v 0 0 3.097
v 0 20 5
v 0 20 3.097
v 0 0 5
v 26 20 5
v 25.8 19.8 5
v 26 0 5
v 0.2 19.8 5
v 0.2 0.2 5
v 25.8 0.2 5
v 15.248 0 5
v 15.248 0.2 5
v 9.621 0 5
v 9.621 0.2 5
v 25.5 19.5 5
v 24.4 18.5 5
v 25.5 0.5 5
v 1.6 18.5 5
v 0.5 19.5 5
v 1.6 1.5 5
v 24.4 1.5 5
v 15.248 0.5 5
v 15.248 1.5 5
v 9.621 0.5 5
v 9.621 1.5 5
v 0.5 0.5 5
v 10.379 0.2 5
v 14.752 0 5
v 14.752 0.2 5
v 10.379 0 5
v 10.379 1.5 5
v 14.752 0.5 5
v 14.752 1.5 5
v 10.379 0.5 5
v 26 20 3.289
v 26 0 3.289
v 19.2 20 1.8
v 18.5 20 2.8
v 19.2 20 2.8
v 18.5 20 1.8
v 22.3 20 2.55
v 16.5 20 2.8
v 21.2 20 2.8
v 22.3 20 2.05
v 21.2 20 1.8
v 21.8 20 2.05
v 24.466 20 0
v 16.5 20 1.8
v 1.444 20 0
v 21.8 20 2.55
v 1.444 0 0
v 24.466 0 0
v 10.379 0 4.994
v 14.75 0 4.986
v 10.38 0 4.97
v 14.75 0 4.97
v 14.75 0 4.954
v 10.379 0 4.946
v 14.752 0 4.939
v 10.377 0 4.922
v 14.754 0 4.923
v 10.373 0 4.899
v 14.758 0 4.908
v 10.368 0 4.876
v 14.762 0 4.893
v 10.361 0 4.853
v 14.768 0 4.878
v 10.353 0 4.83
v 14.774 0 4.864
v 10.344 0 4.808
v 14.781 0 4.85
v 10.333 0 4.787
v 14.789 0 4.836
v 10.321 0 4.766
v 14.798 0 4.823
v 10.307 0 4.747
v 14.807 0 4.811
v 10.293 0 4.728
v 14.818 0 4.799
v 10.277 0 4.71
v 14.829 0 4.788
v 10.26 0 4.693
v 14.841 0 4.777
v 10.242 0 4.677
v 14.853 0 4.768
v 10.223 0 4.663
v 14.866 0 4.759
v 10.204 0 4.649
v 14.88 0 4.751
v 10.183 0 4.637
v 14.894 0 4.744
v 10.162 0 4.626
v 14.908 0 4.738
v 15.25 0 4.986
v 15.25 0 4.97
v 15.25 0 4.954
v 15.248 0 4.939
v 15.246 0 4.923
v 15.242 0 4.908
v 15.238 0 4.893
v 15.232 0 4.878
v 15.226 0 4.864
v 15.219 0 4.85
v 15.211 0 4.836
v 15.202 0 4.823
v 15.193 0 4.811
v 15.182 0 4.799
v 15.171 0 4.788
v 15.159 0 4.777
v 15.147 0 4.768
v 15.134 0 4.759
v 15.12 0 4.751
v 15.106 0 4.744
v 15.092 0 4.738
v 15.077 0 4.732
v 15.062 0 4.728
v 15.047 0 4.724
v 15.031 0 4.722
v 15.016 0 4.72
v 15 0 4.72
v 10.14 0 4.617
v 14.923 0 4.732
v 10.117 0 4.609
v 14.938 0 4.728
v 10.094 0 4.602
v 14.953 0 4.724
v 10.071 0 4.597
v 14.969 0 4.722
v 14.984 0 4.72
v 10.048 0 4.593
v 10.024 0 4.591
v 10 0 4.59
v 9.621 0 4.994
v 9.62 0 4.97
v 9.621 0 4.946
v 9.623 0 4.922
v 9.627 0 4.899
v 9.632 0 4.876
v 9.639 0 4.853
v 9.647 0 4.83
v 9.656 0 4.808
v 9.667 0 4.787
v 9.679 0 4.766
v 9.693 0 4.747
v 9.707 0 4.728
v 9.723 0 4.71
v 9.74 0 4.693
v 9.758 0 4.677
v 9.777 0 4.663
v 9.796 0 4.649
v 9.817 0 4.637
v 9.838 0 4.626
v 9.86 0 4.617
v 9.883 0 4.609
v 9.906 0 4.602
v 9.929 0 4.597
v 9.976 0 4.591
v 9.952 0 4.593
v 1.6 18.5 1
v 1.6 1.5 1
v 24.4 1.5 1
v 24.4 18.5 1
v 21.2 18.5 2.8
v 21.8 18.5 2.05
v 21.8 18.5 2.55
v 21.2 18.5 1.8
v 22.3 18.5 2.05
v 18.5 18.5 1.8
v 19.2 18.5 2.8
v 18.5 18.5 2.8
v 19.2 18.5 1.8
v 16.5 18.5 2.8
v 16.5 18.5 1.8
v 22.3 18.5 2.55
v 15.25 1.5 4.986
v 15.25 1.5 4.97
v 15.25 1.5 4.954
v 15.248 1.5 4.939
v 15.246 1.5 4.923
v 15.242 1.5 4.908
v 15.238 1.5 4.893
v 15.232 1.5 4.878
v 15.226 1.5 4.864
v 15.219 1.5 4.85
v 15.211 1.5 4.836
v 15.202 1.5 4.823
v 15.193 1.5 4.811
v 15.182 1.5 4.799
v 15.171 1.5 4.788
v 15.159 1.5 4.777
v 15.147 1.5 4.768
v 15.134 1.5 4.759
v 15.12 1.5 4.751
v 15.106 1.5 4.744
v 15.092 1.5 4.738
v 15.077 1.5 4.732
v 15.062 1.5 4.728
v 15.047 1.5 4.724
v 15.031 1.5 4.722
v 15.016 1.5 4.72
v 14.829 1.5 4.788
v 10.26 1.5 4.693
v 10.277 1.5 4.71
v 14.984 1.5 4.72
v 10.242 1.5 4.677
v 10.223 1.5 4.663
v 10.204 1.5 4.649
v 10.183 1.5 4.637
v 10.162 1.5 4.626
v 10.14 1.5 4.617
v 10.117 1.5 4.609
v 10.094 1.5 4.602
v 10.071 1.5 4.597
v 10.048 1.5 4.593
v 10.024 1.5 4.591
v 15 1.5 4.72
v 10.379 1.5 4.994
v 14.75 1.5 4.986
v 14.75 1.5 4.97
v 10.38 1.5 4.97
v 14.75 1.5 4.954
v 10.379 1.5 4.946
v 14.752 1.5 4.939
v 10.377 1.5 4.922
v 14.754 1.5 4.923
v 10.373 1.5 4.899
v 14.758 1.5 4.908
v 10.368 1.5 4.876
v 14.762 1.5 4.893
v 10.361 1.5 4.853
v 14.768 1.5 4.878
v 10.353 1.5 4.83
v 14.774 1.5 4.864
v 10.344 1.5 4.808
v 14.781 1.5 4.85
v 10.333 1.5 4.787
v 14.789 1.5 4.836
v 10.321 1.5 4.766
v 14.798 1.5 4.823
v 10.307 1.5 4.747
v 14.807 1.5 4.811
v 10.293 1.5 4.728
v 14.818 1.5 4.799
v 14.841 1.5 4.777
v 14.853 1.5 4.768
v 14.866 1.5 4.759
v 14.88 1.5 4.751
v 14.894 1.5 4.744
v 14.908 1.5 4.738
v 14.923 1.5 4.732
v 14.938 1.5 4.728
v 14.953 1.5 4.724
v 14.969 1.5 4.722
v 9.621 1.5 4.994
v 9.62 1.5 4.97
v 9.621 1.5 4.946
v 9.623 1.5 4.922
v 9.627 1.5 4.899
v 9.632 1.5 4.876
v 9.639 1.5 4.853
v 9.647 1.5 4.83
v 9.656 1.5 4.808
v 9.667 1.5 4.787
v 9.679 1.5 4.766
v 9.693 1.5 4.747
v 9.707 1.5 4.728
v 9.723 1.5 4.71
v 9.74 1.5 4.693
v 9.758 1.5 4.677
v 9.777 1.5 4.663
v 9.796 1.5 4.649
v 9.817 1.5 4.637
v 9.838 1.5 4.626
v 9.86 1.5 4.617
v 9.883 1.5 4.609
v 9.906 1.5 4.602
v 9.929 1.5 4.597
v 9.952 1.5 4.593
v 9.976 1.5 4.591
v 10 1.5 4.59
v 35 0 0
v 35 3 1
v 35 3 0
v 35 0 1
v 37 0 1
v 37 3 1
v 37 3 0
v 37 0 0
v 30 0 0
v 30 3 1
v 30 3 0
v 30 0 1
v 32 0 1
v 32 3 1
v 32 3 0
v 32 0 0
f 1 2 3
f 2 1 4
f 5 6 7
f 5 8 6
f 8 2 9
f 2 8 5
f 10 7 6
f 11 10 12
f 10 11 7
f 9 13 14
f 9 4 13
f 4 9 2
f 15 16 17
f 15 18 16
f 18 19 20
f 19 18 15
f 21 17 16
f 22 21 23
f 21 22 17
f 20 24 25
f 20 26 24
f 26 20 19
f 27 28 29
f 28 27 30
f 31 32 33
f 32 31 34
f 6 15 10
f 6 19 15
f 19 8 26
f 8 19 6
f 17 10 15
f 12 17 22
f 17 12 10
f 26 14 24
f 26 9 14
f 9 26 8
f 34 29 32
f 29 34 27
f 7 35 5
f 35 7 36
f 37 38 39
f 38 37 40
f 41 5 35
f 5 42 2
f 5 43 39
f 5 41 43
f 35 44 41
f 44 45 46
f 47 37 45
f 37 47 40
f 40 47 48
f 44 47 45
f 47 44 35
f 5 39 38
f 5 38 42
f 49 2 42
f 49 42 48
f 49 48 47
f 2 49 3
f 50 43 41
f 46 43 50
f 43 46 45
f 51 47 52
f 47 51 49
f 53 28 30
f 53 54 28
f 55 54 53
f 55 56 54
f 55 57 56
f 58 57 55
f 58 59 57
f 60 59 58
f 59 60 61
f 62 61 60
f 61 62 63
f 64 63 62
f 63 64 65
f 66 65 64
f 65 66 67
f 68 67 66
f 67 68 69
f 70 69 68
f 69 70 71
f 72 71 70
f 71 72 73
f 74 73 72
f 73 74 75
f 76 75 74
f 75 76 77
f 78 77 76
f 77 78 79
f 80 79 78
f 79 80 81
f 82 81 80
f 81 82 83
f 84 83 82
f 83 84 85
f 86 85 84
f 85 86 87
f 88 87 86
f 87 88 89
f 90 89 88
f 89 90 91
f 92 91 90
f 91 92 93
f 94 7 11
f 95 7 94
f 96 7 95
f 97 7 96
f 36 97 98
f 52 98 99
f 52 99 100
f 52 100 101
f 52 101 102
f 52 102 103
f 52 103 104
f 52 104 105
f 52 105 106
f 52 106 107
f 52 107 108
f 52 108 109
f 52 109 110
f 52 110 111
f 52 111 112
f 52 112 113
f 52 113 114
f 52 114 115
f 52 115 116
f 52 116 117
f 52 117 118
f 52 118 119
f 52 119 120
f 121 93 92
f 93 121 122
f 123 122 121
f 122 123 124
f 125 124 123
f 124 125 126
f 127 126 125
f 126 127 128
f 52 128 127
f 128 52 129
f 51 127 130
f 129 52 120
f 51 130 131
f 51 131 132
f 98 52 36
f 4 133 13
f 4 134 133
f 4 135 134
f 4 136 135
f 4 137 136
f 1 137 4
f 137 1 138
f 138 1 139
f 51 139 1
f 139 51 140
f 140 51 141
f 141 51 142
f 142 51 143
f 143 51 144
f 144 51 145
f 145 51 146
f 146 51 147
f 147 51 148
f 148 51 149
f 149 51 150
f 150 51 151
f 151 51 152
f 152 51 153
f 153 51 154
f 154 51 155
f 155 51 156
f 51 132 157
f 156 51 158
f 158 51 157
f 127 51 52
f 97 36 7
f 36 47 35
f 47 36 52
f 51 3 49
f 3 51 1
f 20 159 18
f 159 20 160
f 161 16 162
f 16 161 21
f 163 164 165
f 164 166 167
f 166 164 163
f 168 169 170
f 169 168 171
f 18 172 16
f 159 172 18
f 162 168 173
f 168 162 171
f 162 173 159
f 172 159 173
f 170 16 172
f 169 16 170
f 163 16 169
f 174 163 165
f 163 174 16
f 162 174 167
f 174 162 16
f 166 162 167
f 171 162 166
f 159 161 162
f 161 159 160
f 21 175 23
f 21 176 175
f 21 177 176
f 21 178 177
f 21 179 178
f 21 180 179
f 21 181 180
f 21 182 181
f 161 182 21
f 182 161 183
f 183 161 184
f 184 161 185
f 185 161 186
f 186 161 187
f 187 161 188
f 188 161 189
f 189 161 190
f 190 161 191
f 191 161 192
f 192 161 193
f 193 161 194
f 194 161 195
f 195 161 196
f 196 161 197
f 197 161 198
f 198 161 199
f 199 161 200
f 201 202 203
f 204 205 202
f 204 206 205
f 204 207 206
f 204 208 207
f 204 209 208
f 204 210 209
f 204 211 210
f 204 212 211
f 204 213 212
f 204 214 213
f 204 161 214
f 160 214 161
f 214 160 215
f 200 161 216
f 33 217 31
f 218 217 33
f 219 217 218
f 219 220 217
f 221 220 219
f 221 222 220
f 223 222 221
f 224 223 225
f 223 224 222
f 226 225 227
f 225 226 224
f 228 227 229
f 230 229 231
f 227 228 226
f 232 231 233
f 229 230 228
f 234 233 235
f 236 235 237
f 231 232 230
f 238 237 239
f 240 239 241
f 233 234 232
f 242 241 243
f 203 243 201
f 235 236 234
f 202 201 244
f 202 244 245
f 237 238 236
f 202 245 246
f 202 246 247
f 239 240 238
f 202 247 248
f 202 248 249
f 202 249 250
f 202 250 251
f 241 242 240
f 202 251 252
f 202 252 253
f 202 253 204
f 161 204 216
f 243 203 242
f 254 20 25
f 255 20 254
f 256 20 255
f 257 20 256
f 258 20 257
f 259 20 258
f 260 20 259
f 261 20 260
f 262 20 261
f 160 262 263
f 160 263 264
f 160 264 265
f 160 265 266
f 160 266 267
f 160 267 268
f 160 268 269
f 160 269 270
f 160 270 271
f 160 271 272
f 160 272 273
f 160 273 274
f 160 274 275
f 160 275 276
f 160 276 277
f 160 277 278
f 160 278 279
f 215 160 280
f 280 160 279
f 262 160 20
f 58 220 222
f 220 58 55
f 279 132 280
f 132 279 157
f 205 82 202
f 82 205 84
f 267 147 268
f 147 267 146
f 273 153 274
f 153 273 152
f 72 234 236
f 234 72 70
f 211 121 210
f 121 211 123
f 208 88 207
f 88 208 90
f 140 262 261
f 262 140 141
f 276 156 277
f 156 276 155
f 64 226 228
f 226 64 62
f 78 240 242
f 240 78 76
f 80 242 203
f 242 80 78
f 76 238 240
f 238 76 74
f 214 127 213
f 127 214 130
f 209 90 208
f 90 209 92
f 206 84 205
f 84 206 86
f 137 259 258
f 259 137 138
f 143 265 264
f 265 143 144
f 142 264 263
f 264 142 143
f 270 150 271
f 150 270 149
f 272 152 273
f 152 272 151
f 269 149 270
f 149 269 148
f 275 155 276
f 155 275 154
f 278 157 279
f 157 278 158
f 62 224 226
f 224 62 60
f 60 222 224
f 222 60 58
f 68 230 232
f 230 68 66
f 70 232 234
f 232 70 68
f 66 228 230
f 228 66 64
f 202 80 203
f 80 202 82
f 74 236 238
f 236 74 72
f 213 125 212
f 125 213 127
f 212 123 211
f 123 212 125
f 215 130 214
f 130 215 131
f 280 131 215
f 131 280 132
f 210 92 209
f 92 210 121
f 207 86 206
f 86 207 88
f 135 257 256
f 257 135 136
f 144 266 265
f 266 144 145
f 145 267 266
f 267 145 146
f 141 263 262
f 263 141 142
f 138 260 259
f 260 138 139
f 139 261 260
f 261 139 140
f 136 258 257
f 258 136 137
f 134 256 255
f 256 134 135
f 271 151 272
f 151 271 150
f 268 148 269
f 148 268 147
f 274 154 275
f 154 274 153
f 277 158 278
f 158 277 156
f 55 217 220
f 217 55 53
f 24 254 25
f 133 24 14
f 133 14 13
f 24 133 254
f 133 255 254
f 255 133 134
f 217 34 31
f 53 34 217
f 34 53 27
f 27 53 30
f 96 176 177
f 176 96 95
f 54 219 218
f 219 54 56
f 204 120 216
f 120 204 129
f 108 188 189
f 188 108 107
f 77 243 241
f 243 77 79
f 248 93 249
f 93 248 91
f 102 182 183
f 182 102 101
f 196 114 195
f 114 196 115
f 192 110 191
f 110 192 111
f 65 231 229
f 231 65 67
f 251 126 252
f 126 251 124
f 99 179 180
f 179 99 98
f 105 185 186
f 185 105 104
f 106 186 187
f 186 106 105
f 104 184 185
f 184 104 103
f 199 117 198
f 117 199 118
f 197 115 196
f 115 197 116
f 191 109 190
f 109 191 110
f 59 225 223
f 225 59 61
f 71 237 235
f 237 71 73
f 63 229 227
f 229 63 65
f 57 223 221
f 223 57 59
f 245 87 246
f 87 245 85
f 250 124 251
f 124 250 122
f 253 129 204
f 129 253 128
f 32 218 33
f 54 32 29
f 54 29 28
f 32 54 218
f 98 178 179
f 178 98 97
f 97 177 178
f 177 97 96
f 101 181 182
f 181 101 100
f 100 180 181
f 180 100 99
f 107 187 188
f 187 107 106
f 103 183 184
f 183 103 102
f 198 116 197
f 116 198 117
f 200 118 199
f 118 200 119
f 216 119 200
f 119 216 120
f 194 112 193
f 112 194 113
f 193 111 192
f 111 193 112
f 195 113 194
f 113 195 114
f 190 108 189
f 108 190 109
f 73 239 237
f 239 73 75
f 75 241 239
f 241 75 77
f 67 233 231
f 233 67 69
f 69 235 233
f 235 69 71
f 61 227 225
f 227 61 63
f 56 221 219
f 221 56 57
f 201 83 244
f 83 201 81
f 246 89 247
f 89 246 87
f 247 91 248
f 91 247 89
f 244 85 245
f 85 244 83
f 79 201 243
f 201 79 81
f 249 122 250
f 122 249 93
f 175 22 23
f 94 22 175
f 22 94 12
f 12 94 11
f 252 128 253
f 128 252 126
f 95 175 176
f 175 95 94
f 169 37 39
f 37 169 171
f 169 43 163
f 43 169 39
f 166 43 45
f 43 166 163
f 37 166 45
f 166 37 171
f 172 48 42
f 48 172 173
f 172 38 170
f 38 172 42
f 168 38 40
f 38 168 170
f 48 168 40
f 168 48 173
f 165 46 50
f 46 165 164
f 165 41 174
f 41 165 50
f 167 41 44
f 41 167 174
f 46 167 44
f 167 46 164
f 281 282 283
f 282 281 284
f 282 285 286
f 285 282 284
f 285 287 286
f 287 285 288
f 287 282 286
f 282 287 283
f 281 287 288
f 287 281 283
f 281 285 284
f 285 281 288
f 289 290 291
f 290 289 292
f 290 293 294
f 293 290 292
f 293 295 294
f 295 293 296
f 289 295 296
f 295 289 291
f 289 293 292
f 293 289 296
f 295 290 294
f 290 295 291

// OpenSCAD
module button(){
    cube([2,3,1]);
}
module NES_bottom(){
    difference(){
        translate([0,0,0]){
            cube([26,20,5]);
        }
        //!translate([0,0,0]){
        translate([24,0,-1]){
            rotate([0,25,0]){
                cube([5,20,10]);
            }
        }
        translate([-3,0,-2.30]){
            rotate([0,-25,0]){
                cube([5,20,10]);
            }
        }
        translate([1.6,1.5,1]){
            cube([22.8,17,4]);
        }//}
        translate([10,0,4.97]){
           rotate([-90,0,0]){
               cylinder(h=6, r=0.380, $fn=100);
           }
        }
        translate([15,0,4.97]){
            rotate([-90,0,0]){
                cylinder(h=4, r=0.25, $fn=100);
            }
        }
        translate([0.2,0.3,5]){
            cube([0.3,19.5,0.4]);
        }
        translate([25.5,0.3,5]){
            cube([0.3,19.5,0.4]);
        }
        translate([0.2,0.2,5]){
            cube([25.6,0.3,0.4]);
        }
        translate([0.5,19.5,5]){
            cube([25.15,0.3,0.4]);
        }
        translate([19.2,18,1.8]){
            button();
        }
        translate([16.5,18,1.8]){
            button();
        }
        translate([21.8,18,2.05]){
            cube([0.5,3,0.5]);
        }
    }
    translate([35,0,0]){
        button();
    }
    translate([30,0,0]){
        button();
    }
}
NES_bottom();
